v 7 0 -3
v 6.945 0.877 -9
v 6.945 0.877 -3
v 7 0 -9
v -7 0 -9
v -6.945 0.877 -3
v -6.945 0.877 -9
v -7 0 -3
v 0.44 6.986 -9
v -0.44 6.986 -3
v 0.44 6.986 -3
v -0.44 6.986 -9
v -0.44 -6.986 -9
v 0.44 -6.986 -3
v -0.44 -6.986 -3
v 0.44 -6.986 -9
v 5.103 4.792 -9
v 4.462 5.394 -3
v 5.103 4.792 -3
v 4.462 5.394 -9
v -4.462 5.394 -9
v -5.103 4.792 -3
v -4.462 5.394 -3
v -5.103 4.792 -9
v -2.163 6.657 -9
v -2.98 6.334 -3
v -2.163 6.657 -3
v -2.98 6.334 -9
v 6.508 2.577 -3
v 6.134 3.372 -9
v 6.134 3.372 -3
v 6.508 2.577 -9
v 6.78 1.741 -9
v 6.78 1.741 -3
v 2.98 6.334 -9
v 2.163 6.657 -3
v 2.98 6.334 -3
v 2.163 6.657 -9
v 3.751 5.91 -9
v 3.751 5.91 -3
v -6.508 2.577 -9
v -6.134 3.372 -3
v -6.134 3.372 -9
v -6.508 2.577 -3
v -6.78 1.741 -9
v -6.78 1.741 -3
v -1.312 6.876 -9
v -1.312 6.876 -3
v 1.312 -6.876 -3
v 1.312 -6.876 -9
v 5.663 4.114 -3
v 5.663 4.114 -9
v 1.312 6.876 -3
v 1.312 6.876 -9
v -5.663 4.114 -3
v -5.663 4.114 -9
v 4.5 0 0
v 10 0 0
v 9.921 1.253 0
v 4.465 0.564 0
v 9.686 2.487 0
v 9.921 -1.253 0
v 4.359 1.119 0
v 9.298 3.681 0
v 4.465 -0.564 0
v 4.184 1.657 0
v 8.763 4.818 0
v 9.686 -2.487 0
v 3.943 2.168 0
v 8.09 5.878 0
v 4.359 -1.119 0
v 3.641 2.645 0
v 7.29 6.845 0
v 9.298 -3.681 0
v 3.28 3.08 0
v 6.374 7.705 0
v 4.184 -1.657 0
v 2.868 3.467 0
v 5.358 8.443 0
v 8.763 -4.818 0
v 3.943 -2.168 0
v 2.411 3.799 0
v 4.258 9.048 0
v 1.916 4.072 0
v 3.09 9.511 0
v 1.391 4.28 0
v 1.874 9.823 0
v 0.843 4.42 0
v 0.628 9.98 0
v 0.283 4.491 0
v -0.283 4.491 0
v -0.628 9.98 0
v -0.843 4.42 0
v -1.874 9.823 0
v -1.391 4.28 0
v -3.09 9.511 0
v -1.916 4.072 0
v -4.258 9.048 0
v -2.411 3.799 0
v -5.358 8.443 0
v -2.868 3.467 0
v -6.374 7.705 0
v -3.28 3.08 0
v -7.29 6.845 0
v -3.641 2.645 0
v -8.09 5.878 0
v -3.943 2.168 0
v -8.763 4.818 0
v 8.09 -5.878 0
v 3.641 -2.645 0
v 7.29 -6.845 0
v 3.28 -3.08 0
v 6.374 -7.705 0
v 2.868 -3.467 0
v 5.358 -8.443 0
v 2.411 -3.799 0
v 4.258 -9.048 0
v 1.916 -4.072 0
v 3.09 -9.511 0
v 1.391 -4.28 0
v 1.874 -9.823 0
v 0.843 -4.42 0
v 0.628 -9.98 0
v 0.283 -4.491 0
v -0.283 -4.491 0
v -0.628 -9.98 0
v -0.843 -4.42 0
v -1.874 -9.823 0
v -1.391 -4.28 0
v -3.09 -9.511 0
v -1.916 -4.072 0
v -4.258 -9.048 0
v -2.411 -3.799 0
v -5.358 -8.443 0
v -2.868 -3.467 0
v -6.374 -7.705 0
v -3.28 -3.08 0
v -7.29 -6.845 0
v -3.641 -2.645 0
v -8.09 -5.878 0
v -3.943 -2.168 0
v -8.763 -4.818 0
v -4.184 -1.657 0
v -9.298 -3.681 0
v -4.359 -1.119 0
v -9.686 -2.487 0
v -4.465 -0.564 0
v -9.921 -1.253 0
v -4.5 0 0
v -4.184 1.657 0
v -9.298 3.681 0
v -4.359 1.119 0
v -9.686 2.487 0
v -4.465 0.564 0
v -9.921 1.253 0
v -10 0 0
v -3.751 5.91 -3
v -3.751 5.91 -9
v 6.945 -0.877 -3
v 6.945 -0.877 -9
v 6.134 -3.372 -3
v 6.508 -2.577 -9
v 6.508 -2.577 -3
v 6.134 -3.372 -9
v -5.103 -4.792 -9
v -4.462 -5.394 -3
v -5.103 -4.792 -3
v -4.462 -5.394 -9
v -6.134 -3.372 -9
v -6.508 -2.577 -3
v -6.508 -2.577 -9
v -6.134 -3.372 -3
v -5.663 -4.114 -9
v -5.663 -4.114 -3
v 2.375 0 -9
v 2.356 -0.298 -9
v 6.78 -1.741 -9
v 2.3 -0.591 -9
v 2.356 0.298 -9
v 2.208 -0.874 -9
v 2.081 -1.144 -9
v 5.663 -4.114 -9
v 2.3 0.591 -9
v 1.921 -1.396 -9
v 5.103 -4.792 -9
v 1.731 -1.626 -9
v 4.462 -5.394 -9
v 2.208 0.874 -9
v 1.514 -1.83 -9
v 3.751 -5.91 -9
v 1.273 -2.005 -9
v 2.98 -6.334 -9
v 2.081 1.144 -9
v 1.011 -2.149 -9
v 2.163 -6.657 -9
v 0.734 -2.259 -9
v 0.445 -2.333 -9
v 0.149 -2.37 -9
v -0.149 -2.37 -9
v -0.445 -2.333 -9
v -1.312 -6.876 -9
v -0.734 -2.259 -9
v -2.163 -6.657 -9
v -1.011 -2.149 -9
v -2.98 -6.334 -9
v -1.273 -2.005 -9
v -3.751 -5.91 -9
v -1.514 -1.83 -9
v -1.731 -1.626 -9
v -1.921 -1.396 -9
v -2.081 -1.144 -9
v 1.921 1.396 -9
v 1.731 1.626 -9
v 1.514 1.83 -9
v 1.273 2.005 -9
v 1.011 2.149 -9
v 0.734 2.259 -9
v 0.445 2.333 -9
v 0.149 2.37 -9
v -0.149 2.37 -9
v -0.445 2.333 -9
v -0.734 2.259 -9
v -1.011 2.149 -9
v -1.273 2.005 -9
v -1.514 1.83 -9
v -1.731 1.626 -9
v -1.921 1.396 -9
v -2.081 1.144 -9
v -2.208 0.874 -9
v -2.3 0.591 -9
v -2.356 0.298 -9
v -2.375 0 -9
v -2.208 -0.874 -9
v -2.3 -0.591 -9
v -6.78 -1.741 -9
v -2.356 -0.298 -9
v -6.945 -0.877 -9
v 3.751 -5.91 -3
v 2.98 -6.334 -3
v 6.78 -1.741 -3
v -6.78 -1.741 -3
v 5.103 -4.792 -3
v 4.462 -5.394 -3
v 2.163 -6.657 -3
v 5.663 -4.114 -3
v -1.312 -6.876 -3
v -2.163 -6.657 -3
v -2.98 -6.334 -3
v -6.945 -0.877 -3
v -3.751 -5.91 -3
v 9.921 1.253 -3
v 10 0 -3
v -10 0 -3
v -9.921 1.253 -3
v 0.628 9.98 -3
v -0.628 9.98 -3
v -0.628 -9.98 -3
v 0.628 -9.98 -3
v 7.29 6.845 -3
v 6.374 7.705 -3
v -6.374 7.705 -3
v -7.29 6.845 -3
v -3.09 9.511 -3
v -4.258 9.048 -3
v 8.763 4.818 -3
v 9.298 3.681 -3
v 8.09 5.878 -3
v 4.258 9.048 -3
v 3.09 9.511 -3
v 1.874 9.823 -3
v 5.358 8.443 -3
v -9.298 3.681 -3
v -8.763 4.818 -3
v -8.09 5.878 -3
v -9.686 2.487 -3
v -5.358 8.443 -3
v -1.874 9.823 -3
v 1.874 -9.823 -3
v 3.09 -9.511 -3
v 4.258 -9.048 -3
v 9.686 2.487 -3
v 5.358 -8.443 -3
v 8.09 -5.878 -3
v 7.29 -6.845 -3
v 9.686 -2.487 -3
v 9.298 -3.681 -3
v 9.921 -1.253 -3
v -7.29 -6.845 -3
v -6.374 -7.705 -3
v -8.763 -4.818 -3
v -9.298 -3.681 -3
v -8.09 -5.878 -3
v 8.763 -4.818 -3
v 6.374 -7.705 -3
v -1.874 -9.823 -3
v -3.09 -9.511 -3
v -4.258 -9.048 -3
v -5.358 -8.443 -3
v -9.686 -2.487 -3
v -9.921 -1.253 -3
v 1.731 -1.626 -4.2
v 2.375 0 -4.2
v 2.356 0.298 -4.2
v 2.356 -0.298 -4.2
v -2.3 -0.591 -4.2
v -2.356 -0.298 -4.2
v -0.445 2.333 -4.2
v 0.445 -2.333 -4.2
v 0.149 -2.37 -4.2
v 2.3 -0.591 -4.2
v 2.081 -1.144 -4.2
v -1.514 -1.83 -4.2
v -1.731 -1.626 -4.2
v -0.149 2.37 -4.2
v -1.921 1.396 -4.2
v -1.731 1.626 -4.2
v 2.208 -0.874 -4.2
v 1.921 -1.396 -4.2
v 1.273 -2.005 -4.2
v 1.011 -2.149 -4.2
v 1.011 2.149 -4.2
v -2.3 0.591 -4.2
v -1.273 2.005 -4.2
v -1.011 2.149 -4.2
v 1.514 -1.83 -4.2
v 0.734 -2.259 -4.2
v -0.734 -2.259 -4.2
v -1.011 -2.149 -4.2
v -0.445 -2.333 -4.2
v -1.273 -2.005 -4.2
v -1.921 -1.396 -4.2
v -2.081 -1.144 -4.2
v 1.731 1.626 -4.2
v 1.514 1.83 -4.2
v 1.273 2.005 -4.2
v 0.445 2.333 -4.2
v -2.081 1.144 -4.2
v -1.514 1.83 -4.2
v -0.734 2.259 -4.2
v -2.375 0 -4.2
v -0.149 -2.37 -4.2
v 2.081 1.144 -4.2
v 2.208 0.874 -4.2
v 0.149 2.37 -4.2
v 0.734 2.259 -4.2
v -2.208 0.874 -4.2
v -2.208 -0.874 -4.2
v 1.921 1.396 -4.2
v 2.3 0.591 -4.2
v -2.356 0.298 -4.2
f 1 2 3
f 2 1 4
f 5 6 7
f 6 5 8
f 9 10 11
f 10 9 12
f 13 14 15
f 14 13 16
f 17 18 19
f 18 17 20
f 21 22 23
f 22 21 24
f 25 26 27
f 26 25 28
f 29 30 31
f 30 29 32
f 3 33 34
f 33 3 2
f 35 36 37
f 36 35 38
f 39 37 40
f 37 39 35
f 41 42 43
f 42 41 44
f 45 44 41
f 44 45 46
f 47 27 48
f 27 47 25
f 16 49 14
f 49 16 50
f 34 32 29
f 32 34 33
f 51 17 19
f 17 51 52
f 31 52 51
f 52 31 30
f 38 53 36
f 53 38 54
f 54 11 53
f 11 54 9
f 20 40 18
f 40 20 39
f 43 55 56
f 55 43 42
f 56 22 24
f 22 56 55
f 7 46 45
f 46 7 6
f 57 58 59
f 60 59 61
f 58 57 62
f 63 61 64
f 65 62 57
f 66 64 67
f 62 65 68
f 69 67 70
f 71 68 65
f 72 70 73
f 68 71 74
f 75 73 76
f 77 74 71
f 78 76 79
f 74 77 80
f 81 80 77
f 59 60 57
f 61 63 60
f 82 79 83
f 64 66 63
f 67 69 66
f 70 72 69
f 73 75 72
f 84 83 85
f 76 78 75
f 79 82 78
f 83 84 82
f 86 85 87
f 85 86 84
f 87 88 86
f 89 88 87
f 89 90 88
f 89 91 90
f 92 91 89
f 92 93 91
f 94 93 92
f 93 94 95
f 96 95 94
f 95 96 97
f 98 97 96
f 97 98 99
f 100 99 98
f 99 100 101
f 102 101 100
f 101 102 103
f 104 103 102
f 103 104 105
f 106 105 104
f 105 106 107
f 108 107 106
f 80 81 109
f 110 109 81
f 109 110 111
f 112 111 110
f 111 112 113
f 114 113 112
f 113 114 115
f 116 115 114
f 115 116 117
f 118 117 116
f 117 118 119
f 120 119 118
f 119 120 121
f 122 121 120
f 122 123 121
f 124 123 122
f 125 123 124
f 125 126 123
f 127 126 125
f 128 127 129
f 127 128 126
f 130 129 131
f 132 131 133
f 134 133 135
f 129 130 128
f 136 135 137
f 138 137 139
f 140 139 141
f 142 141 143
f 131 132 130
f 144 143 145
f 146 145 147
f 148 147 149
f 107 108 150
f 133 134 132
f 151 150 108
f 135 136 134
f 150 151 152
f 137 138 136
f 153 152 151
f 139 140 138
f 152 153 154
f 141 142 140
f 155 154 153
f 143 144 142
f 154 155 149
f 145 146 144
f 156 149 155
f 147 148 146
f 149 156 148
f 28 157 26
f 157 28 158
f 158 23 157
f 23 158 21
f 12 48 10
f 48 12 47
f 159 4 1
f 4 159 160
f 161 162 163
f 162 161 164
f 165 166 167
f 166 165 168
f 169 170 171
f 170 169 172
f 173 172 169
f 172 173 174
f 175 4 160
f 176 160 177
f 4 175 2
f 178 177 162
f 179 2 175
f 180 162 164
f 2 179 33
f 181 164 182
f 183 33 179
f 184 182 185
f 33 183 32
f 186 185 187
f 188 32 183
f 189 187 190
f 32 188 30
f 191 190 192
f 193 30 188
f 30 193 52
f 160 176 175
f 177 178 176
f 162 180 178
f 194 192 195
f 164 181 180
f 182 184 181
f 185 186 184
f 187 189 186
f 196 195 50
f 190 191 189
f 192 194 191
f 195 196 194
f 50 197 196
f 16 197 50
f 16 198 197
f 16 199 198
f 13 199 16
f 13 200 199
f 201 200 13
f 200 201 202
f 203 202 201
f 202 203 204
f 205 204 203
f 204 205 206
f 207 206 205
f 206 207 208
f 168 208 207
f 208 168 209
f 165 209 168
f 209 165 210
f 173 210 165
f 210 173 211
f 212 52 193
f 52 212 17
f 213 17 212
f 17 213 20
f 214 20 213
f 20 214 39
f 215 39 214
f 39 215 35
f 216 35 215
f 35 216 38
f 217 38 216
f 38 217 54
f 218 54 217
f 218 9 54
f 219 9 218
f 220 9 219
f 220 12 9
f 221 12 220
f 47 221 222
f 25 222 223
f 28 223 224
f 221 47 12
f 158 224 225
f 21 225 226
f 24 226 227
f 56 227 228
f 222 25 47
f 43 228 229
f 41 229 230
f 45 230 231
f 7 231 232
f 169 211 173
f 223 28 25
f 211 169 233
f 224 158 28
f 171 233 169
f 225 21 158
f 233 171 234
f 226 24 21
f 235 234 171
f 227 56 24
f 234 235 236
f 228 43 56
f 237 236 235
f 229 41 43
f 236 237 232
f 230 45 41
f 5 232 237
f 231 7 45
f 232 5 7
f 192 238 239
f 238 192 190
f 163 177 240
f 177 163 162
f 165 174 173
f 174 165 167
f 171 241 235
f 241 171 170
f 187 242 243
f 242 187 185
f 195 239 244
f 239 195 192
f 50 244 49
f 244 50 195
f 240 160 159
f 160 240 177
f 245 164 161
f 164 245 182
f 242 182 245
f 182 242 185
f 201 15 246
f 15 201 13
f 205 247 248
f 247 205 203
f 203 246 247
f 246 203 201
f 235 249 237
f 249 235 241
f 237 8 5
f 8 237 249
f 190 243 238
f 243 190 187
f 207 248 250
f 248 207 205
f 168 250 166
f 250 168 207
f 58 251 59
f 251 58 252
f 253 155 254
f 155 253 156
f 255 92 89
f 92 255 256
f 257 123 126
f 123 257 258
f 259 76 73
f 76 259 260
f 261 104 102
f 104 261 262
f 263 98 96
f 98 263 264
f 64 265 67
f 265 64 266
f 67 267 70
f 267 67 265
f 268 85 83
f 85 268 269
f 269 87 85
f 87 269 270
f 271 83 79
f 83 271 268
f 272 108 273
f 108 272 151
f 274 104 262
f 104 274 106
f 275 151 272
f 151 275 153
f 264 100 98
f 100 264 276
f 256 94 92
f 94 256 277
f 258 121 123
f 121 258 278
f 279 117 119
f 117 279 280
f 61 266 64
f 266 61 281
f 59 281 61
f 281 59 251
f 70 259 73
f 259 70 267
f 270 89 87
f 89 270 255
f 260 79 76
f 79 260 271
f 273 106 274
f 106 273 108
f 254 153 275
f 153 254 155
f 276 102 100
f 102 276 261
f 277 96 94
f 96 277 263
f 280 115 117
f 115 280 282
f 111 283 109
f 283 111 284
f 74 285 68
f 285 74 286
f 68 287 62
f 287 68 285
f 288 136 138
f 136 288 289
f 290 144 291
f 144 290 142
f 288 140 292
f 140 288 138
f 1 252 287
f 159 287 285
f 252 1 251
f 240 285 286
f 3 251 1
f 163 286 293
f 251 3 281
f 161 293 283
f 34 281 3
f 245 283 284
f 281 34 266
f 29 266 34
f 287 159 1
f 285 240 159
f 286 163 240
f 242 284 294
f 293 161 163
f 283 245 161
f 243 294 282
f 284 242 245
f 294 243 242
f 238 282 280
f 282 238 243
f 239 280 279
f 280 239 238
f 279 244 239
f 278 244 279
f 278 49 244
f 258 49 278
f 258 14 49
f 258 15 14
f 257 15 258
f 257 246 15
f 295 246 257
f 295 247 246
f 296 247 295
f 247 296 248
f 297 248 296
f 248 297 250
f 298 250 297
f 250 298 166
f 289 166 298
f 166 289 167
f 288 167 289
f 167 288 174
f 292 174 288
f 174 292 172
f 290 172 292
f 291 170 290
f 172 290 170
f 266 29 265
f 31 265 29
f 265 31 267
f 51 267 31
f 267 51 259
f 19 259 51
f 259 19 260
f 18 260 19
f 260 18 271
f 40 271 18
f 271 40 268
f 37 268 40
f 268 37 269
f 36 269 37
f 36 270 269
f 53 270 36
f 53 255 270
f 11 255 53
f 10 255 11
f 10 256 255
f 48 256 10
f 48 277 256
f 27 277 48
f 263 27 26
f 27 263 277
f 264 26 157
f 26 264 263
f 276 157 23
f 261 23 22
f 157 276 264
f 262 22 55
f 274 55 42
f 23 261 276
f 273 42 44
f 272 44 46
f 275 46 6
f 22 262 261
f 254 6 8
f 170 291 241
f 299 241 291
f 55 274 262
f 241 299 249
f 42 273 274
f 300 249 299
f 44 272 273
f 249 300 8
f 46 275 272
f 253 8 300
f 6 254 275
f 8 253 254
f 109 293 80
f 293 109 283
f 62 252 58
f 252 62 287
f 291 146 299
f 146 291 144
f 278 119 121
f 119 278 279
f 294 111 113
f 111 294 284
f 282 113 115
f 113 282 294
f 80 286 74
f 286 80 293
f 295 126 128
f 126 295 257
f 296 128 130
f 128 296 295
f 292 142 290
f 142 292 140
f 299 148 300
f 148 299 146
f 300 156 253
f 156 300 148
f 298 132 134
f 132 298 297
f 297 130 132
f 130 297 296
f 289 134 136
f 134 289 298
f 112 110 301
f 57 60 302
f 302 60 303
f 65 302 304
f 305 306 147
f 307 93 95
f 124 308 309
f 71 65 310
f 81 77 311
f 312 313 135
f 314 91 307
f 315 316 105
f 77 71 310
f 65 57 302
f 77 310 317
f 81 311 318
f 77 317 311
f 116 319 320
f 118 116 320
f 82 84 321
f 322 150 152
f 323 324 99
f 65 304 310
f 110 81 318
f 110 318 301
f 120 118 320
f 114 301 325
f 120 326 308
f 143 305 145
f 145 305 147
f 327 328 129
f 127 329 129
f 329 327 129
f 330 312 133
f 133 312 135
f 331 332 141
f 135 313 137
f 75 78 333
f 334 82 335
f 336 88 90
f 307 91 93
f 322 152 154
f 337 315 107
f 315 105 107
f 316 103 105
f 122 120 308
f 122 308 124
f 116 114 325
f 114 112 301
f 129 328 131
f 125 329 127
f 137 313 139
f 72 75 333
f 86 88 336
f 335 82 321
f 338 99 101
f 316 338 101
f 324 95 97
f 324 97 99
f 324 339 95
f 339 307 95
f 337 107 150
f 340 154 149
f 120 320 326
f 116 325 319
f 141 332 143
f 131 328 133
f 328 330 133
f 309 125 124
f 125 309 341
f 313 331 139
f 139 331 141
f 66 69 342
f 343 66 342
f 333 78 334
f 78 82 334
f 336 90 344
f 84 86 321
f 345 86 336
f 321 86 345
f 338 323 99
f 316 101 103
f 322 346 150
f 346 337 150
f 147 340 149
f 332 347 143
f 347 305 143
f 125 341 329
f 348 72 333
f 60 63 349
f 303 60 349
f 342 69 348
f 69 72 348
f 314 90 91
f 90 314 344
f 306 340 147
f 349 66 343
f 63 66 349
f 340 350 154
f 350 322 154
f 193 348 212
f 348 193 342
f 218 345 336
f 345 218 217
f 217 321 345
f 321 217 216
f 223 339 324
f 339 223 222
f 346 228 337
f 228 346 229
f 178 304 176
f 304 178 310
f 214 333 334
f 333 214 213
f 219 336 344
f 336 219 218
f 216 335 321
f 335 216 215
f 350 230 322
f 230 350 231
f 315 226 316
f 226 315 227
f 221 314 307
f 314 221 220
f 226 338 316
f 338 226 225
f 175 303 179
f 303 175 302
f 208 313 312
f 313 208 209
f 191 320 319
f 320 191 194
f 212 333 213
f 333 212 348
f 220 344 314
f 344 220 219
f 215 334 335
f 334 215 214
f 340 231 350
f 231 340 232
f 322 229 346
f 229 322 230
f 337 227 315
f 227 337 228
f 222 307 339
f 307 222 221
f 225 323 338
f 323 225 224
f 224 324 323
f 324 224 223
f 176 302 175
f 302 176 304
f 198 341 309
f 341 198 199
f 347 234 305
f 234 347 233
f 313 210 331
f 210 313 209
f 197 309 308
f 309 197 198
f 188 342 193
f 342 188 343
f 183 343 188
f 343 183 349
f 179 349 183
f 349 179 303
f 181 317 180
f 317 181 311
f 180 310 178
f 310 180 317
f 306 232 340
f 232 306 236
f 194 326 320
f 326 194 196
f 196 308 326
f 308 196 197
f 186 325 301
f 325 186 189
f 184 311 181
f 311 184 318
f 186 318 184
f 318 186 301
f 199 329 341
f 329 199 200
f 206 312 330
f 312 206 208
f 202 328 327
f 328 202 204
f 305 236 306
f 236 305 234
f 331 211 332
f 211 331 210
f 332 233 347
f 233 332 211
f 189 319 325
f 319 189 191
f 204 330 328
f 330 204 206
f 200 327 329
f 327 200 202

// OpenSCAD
$fn = 50;


difference() {
	union() {
		translate(v = [0, 0, -9.0000000000]) {
			cylinder(h = 9, r = 7.0000000000);
		}
		translate(v = [0, 0, -3.0000000000]) {
			cylinder(h = 3, r = 10.0000000000);
		}
	}
	union() {
		translate(v = [0, 0, 0]) {
			rotate(a = [0, 0, 0]) {
				difference() {
					union() {
						#translate(v = [0, 0, -9.0000000000]) {
							cylinder(h = 9, r = 2.2500000000);
						}
						#translate(v = [0, 0, -4.2000000000]) {
							cylinder(h = 4.2000000000, r1 = 2.3750000000, r2 = 4.5000000000);
						}
						#translate(v = [0, 0, -9.0000000000]) {
							cylinder(h = 9, r = 2.3750000000);
						}
						#translate(v = [0, 0, -9.0000000000]) {
							cylinder(h = 9, r = 2.2500000000);
						}
					}
					union();
				}
			}
		}
	}
}
